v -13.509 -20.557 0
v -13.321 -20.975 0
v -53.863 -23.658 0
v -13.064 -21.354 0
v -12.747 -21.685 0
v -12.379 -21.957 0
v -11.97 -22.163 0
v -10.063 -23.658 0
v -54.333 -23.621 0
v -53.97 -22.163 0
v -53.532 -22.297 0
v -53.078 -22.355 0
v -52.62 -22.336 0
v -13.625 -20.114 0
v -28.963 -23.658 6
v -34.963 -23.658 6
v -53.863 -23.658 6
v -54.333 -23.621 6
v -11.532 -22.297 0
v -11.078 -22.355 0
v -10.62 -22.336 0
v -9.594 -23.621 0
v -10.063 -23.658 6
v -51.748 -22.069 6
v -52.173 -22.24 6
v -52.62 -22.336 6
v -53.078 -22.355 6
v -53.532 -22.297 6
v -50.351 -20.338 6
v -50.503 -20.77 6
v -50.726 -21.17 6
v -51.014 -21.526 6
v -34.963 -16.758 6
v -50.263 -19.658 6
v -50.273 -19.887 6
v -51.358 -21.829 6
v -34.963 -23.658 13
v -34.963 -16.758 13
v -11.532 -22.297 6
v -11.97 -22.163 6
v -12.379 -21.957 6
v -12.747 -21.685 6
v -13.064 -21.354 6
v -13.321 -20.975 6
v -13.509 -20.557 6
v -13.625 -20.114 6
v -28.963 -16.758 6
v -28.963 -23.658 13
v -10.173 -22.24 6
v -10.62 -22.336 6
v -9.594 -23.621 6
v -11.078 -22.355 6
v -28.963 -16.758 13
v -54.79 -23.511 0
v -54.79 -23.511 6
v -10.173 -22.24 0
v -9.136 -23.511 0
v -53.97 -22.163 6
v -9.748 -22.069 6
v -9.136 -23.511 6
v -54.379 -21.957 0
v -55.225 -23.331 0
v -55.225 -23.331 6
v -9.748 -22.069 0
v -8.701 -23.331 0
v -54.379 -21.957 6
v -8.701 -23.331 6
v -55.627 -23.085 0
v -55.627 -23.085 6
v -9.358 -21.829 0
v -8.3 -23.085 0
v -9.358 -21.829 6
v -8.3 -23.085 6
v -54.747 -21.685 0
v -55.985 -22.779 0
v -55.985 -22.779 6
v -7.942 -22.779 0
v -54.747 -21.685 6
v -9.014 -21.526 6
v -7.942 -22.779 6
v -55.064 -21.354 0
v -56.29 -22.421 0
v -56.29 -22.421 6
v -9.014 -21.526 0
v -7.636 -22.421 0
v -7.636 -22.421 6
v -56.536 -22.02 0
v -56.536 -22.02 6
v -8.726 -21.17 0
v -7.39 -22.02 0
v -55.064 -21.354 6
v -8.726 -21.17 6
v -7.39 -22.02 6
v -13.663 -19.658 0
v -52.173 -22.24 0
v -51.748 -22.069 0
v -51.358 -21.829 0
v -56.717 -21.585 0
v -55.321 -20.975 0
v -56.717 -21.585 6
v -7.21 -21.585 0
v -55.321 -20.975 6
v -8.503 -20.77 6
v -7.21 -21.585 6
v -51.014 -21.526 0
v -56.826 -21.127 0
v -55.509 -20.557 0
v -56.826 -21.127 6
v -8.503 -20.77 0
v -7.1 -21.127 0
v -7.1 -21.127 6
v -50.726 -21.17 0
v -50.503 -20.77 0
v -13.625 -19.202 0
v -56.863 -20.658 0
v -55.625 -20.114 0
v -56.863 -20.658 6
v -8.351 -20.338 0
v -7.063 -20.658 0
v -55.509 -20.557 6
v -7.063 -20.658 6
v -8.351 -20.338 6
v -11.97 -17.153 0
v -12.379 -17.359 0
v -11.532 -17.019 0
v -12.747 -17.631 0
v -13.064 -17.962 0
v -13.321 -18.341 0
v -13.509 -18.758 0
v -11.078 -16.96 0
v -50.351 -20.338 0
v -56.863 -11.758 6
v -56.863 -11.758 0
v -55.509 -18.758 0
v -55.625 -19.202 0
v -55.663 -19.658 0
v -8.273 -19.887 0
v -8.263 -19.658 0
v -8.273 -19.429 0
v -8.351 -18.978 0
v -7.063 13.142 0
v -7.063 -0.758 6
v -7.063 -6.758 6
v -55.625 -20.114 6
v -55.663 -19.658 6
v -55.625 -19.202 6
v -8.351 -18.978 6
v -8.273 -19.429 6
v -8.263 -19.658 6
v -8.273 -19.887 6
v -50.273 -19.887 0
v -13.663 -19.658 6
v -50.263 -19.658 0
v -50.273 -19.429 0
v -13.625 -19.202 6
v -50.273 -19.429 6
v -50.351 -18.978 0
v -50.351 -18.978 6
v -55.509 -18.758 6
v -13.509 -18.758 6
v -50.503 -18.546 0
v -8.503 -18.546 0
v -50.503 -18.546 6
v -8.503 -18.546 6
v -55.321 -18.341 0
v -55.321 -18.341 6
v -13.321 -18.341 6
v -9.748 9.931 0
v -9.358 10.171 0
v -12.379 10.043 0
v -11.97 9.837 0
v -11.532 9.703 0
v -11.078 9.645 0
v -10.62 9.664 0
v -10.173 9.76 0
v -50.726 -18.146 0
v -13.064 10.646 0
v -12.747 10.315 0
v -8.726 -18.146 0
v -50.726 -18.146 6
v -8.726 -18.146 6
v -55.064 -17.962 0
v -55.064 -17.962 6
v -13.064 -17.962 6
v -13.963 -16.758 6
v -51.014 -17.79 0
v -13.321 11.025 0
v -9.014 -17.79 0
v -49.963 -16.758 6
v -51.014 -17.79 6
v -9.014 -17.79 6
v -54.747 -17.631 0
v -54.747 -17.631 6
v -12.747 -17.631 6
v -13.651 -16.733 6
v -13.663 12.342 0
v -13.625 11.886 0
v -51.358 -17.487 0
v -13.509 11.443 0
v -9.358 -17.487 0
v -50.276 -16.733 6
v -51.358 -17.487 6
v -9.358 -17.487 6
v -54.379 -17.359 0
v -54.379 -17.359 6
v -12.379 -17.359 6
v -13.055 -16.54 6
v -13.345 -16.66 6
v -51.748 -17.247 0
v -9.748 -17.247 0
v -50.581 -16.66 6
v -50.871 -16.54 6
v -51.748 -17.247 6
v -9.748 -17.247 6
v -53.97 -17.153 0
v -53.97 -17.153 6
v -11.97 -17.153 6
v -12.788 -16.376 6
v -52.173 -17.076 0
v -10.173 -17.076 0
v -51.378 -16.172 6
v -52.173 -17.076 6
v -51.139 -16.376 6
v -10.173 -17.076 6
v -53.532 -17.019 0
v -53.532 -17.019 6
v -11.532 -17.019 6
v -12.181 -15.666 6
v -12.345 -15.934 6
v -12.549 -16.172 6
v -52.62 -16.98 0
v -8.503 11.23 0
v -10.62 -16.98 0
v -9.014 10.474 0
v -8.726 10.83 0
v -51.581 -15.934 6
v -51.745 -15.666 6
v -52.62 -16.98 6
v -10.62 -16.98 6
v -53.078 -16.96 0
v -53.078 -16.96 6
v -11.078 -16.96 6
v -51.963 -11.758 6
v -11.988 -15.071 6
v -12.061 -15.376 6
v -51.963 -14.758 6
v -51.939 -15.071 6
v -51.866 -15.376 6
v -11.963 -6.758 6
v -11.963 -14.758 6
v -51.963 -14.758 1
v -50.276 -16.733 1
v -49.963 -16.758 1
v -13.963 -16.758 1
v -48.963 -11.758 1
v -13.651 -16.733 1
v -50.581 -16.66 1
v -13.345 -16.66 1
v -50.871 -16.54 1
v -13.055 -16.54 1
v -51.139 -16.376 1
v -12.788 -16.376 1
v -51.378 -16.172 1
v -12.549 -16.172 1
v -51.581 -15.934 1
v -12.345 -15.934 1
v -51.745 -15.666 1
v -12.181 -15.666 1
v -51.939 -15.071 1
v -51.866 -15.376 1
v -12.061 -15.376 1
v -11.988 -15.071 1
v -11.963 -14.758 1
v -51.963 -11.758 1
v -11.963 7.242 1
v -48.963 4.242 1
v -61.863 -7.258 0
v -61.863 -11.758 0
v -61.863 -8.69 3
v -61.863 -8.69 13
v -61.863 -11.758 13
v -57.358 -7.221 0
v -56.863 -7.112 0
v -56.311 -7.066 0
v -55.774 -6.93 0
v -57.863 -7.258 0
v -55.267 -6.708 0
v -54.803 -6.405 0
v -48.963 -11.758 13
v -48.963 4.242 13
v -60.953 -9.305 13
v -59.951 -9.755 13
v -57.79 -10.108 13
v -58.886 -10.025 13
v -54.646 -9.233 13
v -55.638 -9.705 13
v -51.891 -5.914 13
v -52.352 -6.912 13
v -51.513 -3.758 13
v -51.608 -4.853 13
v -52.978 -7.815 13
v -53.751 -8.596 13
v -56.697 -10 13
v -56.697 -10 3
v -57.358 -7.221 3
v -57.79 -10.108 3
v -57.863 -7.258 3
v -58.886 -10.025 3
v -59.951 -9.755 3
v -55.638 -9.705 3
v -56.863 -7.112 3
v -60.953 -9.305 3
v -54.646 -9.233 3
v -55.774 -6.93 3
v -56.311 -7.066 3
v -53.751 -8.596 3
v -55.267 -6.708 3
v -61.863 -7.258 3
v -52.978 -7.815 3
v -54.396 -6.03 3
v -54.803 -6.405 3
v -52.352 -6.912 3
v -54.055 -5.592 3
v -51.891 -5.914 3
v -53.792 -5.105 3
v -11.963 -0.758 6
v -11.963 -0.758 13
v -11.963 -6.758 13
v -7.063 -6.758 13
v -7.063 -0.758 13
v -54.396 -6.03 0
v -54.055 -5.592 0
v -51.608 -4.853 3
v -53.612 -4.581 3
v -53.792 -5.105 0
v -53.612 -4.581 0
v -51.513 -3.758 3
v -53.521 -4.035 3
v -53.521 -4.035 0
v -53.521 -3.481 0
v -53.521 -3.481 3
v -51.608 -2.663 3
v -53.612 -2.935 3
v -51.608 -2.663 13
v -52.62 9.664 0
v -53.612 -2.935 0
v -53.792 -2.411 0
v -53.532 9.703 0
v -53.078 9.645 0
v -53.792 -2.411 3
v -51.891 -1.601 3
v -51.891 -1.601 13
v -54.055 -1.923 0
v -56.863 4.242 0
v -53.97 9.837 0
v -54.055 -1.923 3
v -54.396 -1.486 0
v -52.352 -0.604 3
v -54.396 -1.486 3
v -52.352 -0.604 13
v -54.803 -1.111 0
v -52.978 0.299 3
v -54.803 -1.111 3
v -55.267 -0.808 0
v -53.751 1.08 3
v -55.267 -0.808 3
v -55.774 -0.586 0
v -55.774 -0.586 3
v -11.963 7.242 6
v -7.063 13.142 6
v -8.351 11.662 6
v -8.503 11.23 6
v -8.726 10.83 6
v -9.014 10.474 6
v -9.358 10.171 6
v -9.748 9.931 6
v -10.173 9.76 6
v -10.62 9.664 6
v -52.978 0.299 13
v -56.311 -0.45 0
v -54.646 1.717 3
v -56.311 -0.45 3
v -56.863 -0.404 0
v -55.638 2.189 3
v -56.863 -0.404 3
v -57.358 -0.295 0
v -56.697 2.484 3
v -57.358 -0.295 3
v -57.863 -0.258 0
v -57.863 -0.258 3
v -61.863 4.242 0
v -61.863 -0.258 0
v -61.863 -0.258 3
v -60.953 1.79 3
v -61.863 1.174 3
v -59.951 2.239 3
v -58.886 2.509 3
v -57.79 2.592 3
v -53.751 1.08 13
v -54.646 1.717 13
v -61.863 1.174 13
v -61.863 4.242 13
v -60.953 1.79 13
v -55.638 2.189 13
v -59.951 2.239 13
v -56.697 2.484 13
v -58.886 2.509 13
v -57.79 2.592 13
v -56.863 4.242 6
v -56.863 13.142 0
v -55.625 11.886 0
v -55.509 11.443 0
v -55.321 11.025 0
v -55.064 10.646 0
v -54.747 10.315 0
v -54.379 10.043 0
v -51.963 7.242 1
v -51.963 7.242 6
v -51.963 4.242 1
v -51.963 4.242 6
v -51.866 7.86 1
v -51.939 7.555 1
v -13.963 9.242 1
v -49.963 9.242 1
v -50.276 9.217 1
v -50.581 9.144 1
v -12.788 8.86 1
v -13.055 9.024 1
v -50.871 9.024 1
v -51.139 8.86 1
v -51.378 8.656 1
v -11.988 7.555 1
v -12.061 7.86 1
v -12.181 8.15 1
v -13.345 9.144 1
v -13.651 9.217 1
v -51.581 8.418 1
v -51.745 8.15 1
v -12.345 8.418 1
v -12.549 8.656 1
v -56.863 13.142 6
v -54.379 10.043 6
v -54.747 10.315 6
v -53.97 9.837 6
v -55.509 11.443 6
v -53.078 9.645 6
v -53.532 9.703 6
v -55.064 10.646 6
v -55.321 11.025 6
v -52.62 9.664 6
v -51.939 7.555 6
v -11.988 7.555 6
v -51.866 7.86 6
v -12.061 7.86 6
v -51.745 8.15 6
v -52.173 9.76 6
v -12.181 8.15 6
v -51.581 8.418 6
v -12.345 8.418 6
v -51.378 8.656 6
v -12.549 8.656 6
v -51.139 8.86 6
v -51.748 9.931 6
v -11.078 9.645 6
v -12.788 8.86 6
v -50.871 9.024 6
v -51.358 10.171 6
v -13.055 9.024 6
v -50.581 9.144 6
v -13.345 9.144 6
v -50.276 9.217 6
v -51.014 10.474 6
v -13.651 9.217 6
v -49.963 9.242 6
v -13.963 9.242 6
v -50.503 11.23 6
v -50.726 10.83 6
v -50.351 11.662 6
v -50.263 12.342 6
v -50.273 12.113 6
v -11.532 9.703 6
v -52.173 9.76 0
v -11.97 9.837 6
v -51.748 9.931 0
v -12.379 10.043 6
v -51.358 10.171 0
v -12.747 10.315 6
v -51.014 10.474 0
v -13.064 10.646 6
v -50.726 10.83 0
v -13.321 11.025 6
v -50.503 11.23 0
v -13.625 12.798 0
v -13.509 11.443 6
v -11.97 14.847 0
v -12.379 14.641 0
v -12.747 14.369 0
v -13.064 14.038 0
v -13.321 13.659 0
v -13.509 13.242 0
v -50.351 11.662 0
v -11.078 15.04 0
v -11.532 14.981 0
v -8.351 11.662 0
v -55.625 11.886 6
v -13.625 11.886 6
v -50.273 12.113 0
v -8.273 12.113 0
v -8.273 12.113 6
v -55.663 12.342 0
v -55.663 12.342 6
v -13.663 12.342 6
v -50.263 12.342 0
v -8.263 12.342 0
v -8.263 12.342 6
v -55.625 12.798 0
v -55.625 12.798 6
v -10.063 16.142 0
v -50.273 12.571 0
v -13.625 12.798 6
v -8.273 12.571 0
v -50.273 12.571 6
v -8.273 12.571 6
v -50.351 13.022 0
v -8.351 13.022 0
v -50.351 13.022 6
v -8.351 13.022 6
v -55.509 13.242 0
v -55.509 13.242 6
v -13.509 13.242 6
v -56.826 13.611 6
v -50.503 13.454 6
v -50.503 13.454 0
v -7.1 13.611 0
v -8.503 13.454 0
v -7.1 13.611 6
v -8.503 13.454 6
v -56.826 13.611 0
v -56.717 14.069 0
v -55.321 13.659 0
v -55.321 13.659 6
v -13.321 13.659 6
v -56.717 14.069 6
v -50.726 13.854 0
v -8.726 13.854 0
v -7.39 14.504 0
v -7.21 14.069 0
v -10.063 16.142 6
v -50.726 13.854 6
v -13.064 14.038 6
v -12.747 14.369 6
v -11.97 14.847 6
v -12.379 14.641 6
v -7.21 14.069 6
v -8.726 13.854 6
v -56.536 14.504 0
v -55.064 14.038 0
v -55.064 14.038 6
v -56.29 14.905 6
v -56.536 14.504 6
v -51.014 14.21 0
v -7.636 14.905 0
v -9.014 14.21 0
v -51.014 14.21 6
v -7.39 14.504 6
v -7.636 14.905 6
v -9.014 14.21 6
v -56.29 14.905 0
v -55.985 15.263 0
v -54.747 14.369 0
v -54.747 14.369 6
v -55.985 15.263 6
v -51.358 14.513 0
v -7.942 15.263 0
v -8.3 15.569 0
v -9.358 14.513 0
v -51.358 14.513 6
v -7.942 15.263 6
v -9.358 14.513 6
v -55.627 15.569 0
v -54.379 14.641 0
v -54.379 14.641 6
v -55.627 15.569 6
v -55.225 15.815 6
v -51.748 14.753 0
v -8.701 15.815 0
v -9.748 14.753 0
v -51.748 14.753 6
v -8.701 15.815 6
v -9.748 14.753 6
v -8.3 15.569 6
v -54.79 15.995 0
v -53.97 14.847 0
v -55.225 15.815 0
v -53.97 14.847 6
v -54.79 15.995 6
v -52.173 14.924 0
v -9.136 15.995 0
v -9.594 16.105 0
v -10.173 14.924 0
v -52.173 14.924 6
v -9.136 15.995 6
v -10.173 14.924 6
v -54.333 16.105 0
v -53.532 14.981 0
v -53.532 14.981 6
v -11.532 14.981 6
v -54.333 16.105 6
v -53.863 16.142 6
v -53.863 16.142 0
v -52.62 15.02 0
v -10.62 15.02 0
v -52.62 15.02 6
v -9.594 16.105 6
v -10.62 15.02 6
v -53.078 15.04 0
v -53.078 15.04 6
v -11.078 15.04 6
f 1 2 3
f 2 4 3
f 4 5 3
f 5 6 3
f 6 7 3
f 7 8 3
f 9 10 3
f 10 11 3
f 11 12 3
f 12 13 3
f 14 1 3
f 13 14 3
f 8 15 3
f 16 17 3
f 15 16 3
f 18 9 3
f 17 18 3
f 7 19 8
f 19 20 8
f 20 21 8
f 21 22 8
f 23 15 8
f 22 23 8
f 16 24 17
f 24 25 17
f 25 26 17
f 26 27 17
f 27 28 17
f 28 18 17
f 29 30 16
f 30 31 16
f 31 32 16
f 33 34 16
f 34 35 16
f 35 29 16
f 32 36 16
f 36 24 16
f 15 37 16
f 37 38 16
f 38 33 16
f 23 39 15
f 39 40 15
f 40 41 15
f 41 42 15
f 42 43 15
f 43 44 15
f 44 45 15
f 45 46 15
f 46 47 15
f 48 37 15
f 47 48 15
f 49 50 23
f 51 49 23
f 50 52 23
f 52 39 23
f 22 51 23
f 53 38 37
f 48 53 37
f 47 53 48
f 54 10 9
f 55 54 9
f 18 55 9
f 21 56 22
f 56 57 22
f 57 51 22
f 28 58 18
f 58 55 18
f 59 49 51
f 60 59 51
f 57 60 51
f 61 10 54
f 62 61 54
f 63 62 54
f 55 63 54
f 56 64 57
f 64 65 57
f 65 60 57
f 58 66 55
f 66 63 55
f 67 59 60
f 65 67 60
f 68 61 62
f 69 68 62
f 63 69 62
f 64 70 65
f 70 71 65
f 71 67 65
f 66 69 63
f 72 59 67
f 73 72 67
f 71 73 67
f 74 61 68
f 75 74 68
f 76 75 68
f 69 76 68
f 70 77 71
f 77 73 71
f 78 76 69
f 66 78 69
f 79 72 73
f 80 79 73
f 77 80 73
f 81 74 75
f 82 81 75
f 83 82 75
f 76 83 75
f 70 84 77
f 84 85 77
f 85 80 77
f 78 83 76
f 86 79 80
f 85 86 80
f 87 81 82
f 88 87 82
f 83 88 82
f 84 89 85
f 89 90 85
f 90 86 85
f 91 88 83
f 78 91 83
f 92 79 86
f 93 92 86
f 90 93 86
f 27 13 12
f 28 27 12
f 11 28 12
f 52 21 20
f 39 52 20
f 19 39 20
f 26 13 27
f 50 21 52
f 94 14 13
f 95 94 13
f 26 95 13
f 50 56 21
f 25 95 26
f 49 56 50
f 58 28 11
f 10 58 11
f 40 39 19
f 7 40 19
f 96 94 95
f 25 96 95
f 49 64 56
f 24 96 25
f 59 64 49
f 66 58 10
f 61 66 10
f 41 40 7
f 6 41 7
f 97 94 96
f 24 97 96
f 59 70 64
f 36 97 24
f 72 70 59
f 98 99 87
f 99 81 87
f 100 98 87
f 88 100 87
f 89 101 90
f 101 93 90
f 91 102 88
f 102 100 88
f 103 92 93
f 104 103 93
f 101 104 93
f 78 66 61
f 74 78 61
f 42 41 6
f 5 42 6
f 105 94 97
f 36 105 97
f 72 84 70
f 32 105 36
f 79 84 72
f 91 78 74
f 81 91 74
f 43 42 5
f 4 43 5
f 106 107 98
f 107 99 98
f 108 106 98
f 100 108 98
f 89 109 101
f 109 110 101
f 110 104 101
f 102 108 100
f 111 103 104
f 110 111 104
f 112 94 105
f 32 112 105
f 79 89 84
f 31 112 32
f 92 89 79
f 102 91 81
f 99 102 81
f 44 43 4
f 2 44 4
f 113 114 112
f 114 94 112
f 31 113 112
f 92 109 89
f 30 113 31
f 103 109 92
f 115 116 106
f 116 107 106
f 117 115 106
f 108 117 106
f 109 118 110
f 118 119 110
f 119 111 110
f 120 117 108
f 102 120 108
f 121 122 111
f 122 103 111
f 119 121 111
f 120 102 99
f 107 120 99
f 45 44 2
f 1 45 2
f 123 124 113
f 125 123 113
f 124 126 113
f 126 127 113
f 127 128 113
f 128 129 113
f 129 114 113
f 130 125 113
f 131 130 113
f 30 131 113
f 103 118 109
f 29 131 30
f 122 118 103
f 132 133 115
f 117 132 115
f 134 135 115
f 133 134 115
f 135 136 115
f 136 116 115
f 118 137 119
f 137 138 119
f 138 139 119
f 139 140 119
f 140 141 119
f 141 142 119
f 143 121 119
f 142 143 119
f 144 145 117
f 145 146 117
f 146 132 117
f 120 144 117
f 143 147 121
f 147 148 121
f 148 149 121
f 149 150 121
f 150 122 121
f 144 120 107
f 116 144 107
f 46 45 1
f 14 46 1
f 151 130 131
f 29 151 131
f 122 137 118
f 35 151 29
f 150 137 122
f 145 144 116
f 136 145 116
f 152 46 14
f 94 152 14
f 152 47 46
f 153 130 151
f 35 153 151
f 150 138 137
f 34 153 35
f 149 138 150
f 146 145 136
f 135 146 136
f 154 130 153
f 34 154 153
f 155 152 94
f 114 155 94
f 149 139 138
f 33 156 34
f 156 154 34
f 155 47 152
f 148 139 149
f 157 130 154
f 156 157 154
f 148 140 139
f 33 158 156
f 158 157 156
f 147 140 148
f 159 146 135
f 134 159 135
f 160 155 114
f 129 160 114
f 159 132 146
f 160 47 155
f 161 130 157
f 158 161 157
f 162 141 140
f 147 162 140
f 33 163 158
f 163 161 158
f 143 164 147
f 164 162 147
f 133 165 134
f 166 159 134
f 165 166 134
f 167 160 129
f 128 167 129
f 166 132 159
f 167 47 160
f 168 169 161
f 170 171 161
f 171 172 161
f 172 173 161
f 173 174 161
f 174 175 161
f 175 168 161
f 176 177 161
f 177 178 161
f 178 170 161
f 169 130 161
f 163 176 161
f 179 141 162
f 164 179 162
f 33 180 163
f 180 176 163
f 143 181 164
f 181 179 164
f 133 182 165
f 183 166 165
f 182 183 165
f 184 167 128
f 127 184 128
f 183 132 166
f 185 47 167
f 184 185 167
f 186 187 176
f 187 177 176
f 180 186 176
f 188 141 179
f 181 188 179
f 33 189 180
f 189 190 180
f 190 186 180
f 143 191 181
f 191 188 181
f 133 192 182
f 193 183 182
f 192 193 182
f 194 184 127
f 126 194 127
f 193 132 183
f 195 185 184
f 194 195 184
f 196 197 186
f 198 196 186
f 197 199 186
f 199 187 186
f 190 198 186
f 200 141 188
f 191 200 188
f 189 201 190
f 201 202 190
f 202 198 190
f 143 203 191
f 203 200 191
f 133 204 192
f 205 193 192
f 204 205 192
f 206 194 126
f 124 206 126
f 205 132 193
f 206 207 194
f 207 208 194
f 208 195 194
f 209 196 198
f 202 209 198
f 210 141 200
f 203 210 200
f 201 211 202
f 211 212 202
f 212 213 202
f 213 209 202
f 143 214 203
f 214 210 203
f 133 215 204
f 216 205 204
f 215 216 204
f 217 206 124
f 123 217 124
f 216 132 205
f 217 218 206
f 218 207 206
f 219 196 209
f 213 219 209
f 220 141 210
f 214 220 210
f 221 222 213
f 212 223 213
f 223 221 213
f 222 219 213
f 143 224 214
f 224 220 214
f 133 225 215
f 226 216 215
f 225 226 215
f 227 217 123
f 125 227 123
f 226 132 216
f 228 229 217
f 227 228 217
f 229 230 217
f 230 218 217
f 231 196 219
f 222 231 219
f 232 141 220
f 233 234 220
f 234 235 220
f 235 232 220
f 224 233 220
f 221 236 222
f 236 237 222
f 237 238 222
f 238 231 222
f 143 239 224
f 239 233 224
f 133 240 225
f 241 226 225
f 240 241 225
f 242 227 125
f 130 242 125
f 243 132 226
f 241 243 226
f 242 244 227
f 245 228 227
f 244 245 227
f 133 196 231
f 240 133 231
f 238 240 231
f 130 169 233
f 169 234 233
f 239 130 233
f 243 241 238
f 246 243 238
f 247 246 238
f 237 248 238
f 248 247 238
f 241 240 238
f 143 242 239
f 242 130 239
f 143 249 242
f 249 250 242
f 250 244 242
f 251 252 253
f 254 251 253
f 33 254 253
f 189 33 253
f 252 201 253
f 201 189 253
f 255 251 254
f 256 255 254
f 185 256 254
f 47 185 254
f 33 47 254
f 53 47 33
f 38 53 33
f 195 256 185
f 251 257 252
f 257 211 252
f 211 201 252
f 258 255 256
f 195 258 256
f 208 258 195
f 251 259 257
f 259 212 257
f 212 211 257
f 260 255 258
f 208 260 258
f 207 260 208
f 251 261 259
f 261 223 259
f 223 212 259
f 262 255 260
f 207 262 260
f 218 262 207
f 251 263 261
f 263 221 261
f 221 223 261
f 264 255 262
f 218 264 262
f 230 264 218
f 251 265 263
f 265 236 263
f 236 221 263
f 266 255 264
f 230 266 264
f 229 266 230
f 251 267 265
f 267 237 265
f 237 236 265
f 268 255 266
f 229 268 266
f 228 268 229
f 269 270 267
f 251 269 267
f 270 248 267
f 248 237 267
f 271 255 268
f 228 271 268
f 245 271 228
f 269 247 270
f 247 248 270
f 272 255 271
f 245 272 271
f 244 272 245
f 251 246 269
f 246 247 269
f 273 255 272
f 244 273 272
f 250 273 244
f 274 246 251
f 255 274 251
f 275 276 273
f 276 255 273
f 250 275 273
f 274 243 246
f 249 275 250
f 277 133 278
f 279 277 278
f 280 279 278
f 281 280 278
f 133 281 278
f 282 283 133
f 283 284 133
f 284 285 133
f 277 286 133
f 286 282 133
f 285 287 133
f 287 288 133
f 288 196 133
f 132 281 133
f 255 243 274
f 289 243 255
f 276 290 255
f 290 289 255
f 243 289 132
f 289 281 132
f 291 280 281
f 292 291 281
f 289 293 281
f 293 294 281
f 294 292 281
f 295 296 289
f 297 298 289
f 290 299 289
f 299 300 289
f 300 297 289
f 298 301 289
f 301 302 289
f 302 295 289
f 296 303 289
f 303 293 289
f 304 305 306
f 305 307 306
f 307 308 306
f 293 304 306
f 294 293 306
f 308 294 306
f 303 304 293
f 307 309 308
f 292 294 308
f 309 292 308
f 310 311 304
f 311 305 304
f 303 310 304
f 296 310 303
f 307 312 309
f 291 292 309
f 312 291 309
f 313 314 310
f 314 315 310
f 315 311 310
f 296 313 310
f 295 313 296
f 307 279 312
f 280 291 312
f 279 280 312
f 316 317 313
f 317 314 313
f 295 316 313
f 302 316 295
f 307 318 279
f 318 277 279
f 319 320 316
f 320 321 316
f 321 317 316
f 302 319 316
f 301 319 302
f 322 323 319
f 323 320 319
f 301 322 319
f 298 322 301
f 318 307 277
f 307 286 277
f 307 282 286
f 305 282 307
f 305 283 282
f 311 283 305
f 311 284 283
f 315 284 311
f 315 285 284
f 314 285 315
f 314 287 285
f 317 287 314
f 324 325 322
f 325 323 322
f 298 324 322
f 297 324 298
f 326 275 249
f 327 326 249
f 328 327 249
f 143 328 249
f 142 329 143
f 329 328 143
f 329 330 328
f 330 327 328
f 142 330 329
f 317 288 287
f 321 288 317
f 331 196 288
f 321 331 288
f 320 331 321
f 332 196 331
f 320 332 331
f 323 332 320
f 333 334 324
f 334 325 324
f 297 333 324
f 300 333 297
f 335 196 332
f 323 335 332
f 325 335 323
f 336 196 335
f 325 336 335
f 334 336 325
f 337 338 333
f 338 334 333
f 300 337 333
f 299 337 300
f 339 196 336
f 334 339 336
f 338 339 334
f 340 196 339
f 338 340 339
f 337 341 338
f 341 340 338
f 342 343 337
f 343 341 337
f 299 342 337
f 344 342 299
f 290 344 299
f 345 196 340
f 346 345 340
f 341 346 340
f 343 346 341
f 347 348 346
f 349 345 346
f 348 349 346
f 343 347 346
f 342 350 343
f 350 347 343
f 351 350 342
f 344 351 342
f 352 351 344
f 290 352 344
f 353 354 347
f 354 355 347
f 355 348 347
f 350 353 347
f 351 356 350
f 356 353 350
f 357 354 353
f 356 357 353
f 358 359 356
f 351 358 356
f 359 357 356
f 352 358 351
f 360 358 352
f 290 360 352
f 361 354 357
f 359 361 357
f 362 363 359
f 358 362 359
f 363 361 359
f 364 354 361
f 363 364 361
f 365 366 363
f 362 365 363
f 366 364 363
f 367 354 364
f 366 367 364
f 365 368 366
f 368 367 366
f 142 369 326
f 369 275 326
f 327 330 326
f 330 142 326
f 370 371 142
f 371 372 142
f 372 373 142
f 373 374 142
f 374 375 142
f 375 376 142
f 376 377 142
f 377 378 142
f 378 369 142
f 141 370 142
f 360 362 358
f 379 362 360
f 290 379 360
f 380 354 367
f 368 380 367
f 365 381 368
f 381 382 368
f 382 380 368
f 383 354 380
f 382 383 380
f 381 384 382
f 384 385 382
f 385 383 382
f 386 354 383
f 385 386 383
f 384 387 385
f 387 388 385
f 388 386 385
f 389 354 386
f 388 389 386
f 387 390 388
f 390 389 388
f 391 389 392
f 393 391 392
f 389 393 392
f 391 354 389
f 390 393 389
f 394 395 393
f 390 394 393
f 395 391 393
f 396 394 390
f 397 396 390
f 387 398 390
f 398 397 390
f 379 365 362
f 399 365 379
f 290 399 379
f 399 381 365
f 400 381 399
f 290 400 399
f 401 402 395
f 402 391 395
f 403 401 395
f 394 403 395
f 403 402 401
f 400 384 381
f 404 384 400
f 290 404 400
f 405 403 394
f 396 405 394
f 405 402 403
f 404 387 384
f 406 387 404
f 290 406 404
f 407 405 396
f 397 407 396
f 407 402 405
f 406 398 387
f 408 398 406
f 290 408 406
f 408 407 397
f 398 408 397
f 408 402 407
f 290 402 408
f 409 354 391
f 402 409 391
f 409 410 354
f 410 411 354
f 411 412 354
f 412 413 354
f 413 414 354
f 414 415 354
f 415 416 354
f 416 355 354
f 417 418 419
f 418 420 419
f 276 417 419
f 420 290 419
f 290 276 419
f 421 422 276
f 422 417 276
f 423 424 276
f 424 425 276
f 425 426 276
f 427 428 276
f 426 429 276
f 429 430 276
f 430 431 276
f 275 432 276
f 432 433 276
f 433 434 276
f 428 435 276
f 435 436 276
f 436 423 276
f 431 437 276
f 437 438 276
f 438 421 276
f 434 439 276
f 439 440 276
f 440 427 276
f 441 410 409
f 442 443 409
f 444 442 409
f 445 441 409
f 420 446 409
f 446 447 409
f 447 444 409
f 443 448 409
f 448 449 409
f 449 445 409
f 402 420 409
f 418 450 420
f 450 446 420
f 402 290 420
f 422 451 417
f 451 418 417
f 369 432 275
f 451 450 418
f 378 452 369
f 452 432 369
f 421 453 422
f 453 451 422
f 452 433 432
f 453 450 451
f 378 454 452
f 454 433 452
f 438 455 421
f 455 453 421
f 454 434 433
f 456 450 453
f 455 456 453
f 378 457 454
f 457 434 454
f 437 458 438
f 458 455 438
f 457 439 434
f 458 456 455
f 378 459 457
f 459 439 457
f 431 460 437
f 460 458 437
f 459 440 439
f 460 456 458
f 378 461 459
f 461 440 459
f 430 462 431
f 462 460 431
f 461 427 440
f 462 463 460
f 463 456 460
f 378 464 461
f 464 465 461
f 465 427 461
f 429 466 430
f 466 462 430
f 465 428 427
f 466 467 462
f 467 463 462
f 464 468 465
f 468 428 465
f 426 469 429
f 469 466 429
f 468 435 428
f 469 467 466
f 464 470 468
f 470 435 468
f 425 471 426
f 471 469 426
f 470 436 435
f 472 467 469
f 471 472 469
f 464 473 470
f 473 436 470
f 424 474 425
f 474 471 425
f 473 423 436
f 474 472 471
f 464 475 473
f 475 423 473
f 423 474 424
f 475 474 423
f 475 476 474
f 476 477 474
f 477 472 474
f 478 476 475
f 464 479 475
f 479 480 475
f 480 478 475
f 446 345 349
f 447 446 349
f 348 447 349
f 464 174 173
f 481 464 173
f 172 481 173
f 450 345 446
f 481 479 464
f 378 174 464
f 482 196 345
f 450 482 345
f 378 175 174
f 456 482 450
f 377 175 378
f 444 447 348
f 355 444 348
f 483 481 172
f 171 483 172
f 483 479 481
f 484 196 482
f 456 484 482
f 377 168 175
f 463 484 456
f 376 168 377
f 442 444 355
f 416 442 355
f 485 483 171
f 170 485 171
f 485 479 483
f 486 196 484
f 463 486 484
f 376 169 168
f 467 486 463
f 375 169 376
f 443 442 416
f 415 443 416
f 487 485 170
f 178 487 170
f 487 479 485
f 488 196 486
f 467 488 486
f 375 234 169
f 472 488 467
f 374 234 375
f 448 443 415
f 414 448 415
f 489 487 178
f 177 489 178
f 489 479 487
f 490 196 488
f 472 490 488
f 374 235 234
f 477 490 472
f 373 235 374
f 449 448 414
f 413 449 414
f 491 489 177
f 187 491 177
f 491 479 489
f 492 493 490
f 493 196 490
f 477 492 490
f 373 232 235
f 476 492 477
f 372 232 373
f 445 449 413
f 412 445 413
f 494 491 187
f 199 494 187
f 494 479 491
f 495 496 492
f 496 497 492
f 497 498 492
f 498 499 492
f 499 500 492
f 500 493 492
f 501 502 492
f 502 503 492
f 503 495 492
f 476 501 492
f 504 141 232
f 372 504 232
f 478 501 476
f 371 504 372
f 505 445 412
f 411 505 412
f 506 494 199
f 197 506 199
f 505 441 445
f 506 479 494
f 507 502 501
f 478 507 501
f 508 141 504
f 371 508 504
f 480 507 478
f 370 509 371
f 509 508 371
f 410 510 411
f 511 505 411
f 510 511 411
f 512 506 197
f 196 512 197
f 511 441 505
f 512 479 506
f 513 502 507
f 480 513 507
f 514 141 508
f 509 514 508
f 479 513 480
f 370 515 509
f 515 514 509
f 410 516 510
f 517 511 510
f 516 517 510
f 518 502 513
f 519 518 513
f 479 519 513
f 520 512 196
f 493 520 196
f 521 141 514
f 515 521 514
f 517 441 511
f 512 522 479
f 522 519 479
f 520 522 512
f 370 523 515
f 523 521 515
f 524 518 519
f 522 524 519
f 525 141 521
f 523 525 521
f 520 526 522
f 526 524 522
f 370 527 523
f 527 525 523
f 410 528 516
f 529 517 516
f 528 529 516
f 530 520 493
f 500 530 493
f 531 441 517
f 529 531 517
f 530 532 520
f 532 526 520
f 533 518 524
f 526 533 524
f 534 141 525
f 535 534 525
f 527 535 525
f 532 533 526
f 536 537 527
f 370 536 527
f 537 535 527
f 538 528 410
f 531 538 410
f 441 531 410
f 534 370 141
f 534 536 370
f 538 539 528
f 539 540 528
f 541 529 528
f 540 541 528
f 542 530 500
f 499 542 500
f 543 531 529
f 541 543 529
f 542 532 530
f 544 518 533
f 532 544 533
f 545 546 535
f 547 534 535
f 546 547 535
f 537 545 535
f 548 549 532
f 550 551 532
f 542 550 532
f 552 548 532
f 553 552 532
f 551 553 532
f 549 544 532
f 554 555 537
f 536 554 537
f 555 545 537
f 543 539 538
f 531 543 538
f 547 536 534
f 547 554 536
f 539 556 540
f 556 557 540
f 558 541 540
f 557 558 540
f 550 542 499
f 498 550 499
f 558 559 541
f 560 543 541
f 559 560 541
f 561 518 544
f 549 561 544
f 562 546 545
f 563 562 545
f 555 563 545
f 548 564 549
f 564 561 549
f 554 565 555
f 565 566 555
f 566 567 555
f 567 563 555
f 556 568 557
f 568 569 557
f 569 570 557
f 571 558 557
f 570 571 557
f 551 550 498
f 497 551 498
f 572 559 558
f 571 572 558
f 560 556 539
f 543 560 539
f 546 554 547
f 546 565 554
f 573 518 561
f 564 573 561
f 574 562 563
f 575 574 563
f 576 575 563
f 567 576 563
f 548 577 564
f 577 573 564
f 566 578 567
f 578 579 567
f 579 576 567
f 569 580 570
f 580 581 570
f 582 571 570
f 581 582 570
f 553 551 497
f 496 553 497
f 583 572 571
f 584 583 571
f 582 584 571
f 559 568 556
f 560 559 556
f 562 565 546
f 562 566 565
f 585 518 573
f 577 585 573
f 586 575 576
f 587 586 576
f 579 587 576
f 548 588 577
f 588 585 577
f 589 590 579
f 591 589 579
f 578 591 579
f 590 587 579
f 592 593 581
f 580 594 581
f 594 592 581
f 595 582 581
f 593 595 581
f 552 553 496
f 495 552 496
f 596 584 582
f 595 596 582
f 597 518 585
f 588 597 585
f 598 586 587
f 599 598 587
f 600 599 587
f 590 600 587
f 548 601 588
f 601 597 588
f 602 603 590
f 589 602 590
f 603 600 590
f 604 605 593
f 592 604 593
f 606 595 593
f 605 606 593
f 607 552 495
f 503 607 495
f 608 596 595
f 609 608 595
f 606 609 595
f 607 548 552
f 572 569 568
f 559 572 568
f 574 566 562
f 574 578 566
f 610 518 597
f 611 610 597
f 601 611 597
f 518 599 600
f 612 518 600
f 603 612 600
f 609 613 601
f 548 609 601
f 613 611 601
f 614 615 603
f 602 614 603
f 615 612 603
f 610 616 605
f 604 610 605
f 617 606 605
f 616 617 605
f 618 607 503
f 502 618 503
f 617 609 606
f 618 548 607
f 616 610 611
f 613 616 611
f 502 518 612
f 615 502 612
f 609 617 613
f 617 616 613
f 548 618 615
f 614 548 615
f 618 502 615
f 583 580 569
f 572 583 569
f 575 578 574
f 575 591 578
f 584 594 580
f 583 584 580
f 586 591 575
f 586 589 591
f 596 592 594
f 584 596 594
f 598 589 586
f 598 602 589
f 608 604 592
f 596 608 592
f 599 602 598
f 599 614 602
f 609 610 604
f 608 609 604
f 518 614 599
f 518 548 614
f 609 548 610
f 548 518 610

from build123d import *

# Parameters (mm, degrees)
CROQUIS1_W              = 49.8
CROQUIS1_H              = 39.8
CROQUIS1_R              = 2.7
SALIENTE_EXTRUIR1_DEPTH = 6
CORTAR_EXTRUIR1_DEPTH   = 5
CROQUIS3_W              = 4.9
CROQUIS3_H              = 6
CROQUIS3_W_2            = 6
CROQUIS3_H_2            = 6.9
SALIENTE_EXTRUIR2_DEPTH = 7
REDONDEO1_R             = 3
SALIENTE_EXTRUIR3_DEPTH = 3
CROQUIS5_R              = 6.35
CORTAR_EXTRUIR2_DEPTH   = 3
SALIENTE_EXTRUIR4_DEPTH = 10
SALIENTE_EXTRUIR5_DEPTH = 2
CORTAR_EXTRUIR3_START   = -3
CORTAR_EXTRUIR3_DEPTH   = 3


with BuildPart() as part:
    # Croquis1 → Saliente-Extruir1 (new body)
    with BuildSketch(Plane.XY):
        with Locations((-31.963412372, -3.757931034)):
            Rectangle(CROQUIS1_W, CROQUIS1_H)
        with Locations((-52.963412372, 12.342068966)):
            Circle(CROQUIS1_R, mode=Mode.SUBTRACT)
        with Locations((-10.963412372, 12.342068966)):
            Circle(CROQUIS1_R, mode=Mode.SUBTRACT)
        with Locations((-10.963412372, -19.657931034)):
            Circle(CROQUIS1_R, mode=Mode.SUBTRACT)
        with Locations((-52.963412372, -19.657931034)):
            Circle(CROQUIS1_R, mode=Mode.SUBTRACT)
    extrude(amount=SALIENTE_EXTRUIR1_DEPTH)

    # Croquis2 → Cortar-Extruir1 (cut)
    with BuildSketch(Plane.XY.offset(6)):
        with BuildLine():
            Line((-49.963412372, -16.757931034), (-13.963412372, -16.757931034))
            ThreePointArc((-13.963412372, -16.757931034), (-12.54919881, -16.172144597), (-11.963412372, -14.757931034))
            Line((-11.963412372, -14.757931034), (-11.963412372, 7.242068966))
            ThreePointArc((-11.963412372, 7.242068966), (-12.54919881, 8.656282528), (-13.963412372, 9.242068966))
            Line((-13.963412372, 9.242068966), (-49.963412372, 9.242068966))
            ThreePointArc((-49.963412372, 9.242068966), (-51.377625934, 8.656282528), (-51.963412372, 7.242068966))
            Line((-51.963412372, 7.242068966), (-51.963412372, -14.757931034))
            ThreePointArc((-51.963412372, -14.757931034), (-51.377625934, -16.172144597), (-49.963412372, -16.757931034))
        make_face()
    extrude(amount=-CORTAR_EXTRUIR1_DEPTH, mode=Mode.SUBTRACT)

    # Croquis3 → Saliente-Extruir2 (add)
    with BuildSketch(Plane.XY.offset(6)):
        with Locations((-9.513412372, -3.757931034)):
            Rectangle(CROQUIS3_W, CROQUIS3_H)
        with Locations((-31.963412372, -20.207931034)):
            Rectangle(CROQUIS3_W_2, CROQUIS3_H_2)
    extrude(amount=SALIENTE_EXTRUIR2_DEPTH)

    # Redondeo1
    redondeo1_edges = [part.edges().sort_by_distance(p)[0] for p in [
        (-56.863412372, 16.142068966, 3),
        (-7.063412372, 16.142068966, 3),
        (-7.063412372, -23.657931034, 3),
        (-56.863412372, -23.657931034, 3),
    ]]
    fillet(redondeo1_edges, radius=REDONDEO1_R)

    # Croquis4 → Saliente-Extruir3 (add)
    with BuildSketch(Plane(origin=(0, 0, 0), x_dir=(-1, 0, 0), z_dir=(0, 0, -1))):
        with BuildLine():
            Line((56.863412372, 4.242068966), (61.863412372, 4.242068966))
            Line((61.863412372, 4.242068966), (61.863412372, -0.257931034))
            Line((61.863412372, -0.257931034), (57.863412372, -0.257931034))
            ThreePointArc((57.863412372, -0.257931034), (57.358118834, -0.294597605), (56.863412372, -0.403829068))
            Line((56.863412372, -0.403829068), (56.863412372, 4.242068966))
        make_face()
        with BuildLine():
            Line((61.863412372, -11.757931034), (56.863412372, -11.757931034))
            Line((56.863412372, -11.757931034), (56.863412372, -7.112033001))
            ThreePointArc((56.863412372, -7.112033001), (57.358118834, -7.221264464), (57.863412372, -7.257931034))
            Line((57.863412372, -7.257931034), (61.863412372, -7.257931034))
            Line((61.863412372, -7.257931034), (61.863412372, -11.757931034))
        make_face()
    extrude(amount=-SALIENTE_EXTRUIR3_DEPTH)

    # Croquis5 → Cortar-Extruir2 (cut)
    with BuildSketch(Plane.XY.offset(3)):
        with Locations((-57.863412372, -3.757931034)):
            Circle(CROQUIS5_R)
    extrude(amount=CORTAR_EXTRUIR2_DEPTH, mode=Mode.SUBTRACT)

    # Croquis6 → Saliente-Extruir4 (add)
    with BuildSketch(Plane.XY.offset(3)):
        with BuildLine():
            Line((-61.863412372, 4.242068966), (-51.963412372, 4.242068966))
            Line((-51.963412372, 4.242068966), (-48.963412372, 4.242068966))
            Line((-48.963412372, 4.242068966), (-48.963412372, -11.757931034))
            Line((-48.963412372, -11.757931034), (-51.963412372, -11.757931034))
            Line((-51.963412372, -11.757931034), (-61.863412372, -11.757931034))
            Line((-61.863412372, -11.757931034), (-61.863412372, -8.689715701))
            ThreePointArc((-61.863412372, -8.689715701), (-51.513412372, -3.757931034), (-61.863412372, 1.173853632))
            Line((-61.863412372, 1.173853632), (-61.863412372, 4.242068966))
        make_face()
    extrude(amount=SALIENTE_EXTRUIR4_DEPTH)

    # Croquis7 → Saliente-Extruir5 (add)
    with BuildSketch(Plane.XY.offset(1)):
        Polygon((-51.963412372, -3.757931034), (-51.963412372, 4.242068966), (-48.963412372, 4.242068966), (-48.963412372, -11.757931034), (-51.963412372, -11.757931034), align=None)
    extrude(amount=SALIENTE_EXTRUIR5_DEPTH)

    # Croquis8 → Cortar-Extruir3 (cut)
    with BuildSketch(Plane.XY.offset(3).offset(CORTAR_EXTRUIR3_START)):
        with BuildLine():
            Line((-56.863412372, -0.403829068), (-56.863412372, -7.112033001))
            ThreePointArc((-56.863412372, -7.112033001), (-53.509310406, -3.757931034), (-56.863412372, -0.403829068))
        make_face()
    extrude(amount=CORTAR_EXTRUIR3_DEPTH, mode=Mode.SUBTRACT)


solid = part.part
